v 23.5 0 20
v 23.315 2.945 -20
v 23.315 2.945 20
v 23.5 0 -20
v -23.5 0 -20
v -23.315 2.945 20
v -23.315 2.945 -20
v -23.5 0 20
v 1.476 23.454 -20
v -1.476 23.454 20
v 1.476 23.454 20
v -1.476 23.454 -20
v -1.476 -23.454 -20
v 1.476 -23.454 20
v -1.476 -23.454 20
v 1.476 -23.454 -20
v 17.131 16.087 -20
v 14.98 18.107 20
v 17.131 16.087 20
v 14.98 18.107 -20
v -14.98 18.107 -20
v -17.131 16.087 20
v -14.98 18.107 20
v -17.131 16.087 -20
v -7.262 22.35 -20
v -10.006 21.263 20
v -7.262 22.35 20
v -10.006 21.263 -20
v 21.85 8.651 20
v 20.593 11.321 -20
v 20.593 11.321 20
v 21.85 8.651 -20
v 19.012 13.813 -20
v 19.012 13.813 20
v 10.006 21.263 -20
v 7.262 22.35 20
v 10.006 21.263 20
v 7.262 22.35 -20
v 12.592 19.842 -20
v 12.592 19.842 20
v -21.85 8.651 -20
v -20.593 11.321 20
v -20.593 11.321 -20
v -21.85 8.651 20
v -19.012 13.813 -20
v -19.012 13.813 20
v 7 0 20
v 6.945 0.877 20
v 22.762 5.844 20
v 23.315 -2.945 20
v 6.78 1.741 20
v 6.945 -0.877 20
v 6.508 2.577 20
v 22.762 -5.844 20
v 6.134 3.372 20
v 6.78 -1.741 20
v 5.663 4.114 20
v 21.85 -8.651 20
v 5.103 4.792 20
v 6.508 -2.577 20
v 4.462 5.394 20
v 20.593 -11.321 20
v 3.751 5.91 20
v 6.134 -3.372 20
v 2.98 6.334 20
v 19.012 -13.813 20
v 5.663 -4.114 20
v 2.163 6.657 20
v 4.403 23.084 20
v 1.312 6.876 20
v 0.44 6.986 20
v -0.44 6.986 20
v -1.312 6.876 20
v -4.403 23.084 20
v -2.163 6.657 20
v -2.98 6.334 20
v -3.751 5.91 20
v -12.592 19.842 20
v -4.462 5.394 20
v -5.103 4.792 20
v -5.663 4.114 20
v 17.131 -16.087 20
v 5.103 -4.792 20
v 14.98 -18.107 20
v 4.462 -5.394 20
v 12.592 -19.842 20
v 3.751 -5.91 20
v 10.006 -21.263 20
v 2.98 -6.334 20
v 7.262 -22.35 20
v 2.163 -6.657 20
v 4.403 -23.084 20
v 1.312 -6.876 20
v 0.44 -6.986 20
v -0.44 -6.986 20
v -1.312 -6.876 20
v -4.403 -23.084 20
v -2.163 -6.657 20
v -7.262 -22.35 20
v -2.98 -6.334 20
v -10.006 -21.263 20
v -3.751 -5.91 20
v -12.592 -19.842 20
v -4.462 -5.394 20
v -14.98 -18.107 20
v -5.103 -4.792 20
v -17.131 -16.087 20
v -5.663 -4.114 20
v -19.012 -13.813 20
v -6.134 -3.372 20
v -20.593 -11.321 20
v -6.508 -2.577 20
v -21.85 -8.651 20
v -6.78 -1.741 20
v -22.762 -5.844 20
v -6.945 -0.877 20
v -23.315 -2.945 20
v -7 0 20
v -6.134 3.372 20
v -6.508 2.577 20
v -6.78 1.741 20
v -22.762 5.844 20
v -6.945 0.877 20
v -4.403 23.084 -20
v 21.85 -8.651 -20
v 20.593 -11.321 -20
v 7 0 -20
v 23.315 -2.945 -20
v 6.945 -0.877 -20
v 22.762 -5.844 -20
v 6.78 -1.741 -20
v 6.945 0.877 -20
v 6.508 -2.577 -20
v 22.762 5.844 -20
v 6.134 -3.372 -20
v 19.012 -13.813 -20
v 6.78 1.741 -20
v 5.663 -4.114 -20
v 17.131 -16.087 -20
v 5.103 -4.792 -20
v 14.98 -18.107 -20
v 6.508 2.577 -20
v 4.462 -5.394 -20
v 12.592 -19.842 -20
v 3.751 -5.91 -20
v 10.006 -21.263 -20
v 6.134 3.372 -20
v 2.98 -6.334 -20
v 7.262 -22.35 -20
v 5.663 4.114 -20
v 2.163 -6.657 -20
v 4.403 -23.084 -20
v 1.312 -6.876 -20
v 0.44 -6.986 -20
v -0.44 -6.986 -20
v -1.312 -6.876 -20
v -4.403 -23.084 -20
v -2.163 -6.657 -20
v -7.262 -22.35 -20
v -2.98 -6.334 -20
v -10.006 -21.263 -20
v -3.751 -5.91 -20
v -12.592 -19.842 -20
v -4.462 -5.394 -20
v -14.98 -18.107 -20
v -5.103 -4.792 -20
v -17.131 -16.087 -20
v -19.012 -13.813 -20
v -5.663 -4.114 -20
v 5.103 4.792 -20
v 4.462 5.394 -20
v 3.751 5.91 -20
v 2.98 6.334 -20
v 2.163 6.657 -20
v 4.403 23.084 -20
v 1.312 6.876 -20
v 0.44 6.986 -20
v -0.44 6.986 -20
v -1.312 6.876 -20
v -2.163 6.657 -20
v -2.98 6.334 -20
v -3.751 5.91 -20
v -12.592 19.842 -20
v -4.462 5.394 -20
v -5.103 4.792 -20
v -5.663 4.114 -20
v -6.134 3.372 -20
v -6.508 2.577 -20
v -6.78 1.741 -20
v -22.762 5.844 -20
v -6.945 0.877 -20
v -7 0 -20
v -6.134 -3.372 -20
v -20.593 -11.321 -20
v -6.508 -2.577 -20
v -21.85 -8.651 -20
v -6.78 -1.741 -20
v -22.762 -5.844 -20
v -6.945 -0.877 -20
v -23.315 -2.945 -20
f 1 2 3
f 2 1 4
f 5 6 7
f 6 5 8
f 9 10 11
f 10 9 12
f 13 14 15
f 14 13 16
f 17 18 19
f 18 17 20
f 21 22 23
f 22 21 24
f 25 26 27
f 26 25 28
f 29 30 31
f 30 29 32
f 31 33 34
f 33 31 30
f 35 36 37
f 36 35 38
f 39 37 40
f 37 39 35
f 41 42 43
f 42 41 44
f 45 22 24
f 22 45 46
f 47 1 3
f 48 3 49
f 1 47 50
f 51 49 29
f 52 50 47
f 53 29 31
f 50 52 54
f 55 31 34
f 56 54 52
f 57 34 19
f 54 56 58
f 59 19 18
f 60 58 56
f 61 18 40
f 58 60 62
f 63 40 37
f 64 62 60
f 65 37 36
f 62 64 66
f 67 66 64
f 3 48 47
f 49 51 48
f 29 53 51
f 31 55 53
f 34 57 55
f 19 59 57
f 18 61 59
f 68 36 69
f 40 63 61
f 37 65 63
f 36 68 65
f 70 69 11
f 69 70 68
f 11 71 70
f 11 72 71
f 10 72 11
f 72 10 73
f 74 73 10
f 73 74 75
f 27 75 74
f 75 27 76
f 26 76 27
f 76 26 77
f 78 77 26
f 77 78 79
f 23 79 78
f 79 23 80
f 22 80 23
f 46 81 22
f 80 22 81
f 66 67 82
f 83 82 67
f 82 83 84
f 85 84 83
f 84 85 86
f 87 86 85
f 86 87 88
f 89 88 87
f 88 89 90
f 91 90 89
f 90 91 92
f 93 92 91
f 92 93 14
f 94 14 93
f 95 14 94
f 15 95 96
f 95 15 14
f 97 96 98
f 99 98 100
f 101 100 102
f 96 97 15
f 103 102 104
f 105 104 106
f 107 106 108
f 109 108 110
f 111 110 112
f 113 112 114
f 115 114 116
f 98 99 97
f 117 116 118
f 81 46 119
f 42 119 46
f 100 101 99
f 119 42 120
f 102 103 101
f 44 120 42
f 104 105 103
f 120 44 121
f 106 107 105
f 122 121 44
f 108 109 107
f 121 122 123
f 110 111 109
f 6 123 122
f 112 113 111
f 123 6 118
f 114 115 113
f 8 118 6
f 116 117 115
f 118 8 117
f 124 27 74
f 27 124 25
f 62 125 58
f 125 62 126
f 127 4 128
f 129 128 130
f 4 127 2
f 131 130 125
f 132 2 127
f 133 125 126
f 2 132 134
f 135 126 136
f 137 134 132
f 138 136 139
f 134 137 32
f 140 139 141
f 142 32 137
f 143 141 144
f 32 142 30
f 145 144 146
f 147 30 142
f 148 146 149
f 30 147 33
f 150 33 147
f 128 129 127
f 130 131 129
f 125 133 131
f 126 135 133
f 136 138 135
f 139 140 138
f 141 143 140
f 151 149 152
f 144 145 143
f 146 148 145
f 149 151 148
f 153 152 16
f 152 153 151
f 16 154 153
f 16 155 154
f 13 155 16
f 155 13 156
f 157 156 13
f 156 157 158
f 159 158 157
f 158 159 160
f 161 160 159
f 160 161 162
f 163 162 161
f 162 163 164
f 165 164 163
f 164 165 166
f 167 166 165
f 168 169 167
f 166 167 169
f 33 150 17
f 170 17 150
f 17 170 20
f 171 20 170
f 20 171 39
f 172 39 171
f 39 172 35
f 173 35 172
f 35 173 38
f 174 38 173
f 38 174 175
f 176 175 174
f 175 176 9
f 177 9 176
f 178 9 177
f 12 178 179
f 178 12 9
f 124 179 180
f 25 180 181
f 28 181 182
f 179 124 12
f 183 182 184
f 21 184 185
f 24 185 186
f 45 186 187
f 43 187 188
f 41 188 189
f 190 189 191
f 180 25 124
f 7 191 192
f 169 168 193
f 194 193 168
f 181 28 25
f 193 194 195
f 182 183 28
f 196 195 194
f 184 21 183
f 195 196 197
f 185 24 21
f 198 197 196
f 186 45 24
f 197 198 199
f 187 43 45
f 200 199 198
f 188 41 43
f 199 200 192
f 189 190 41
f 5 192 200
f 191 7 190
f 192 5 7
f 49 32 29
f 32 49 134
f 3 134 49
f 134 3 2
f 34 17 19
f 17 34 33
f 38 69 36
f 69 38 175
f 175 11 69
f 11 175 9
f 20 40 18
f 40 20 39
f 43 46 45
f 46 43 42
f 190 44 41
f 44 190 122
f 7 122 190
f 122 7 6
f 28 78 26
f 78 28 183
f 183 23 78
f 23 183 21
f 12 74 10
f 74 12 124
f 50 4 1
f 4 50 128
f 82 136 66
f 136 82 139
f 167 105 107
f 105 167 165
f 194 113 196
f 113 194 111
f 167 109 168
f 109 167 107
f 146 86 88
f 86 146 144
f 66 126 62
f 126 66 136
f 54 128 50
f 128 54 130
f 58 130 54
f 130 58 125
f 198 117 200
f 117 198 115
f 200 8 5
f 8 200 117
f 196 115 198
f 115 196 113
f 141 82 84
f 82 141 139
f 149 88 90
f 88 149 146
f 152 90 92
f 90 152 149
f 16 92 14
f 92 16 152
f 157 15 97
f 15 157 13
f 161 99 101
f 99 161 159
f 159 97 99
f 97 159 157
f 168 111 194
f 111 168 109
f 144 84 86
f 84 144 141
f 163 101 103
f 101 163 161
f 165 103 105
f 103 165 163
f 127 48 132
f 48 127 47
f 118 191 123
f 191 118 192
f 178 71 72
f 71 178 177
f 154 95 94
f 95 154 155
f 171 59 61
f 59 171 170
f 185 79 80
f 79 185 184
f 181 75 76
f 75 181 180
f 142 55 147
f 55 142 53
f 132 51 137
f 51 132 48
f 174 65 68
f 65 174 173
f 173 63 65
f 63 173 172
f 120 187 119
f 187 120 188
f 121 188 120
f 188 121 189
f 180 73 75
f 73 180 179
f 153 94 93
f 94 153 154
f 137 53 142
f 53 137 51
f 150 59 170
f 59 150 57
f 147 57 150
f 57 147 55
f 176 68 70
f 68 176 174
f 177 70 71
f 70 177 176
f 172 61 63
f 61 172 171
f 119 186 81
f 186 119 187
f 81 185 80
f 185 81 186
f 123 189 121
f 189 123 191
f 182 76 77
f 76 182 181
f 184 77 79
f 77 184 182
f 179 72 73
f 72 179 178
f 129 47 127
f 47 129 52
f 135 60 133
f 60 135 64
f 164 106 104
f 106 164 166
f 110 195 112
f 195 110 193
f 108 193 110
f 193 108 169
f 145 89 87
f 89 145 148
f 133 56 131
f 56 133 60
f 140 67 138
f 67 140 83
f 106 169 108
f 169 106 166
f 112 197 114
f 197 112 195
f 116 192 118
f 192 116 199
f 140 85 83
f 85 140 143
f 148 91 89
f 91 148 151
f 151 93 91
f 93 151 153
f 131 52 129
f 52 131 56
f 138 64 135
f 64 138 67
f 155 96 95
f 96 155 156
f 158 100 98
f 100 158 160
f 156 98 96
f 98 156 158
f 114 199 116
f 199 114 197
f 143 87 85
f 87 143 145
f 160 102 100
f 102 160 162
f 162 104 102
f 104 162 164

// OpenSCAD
$fn = 50;


difference() {
	union() {
		translate(v = [0, 0, -20.0000000000]) {
			cylinder(h = 40, r = 23.5000000000);
		}
	}
	union() {
		translate(v = [0, 0, -100.0000000000]) {
			cylinder(h = 200, r = 7);
		}
	}
}
